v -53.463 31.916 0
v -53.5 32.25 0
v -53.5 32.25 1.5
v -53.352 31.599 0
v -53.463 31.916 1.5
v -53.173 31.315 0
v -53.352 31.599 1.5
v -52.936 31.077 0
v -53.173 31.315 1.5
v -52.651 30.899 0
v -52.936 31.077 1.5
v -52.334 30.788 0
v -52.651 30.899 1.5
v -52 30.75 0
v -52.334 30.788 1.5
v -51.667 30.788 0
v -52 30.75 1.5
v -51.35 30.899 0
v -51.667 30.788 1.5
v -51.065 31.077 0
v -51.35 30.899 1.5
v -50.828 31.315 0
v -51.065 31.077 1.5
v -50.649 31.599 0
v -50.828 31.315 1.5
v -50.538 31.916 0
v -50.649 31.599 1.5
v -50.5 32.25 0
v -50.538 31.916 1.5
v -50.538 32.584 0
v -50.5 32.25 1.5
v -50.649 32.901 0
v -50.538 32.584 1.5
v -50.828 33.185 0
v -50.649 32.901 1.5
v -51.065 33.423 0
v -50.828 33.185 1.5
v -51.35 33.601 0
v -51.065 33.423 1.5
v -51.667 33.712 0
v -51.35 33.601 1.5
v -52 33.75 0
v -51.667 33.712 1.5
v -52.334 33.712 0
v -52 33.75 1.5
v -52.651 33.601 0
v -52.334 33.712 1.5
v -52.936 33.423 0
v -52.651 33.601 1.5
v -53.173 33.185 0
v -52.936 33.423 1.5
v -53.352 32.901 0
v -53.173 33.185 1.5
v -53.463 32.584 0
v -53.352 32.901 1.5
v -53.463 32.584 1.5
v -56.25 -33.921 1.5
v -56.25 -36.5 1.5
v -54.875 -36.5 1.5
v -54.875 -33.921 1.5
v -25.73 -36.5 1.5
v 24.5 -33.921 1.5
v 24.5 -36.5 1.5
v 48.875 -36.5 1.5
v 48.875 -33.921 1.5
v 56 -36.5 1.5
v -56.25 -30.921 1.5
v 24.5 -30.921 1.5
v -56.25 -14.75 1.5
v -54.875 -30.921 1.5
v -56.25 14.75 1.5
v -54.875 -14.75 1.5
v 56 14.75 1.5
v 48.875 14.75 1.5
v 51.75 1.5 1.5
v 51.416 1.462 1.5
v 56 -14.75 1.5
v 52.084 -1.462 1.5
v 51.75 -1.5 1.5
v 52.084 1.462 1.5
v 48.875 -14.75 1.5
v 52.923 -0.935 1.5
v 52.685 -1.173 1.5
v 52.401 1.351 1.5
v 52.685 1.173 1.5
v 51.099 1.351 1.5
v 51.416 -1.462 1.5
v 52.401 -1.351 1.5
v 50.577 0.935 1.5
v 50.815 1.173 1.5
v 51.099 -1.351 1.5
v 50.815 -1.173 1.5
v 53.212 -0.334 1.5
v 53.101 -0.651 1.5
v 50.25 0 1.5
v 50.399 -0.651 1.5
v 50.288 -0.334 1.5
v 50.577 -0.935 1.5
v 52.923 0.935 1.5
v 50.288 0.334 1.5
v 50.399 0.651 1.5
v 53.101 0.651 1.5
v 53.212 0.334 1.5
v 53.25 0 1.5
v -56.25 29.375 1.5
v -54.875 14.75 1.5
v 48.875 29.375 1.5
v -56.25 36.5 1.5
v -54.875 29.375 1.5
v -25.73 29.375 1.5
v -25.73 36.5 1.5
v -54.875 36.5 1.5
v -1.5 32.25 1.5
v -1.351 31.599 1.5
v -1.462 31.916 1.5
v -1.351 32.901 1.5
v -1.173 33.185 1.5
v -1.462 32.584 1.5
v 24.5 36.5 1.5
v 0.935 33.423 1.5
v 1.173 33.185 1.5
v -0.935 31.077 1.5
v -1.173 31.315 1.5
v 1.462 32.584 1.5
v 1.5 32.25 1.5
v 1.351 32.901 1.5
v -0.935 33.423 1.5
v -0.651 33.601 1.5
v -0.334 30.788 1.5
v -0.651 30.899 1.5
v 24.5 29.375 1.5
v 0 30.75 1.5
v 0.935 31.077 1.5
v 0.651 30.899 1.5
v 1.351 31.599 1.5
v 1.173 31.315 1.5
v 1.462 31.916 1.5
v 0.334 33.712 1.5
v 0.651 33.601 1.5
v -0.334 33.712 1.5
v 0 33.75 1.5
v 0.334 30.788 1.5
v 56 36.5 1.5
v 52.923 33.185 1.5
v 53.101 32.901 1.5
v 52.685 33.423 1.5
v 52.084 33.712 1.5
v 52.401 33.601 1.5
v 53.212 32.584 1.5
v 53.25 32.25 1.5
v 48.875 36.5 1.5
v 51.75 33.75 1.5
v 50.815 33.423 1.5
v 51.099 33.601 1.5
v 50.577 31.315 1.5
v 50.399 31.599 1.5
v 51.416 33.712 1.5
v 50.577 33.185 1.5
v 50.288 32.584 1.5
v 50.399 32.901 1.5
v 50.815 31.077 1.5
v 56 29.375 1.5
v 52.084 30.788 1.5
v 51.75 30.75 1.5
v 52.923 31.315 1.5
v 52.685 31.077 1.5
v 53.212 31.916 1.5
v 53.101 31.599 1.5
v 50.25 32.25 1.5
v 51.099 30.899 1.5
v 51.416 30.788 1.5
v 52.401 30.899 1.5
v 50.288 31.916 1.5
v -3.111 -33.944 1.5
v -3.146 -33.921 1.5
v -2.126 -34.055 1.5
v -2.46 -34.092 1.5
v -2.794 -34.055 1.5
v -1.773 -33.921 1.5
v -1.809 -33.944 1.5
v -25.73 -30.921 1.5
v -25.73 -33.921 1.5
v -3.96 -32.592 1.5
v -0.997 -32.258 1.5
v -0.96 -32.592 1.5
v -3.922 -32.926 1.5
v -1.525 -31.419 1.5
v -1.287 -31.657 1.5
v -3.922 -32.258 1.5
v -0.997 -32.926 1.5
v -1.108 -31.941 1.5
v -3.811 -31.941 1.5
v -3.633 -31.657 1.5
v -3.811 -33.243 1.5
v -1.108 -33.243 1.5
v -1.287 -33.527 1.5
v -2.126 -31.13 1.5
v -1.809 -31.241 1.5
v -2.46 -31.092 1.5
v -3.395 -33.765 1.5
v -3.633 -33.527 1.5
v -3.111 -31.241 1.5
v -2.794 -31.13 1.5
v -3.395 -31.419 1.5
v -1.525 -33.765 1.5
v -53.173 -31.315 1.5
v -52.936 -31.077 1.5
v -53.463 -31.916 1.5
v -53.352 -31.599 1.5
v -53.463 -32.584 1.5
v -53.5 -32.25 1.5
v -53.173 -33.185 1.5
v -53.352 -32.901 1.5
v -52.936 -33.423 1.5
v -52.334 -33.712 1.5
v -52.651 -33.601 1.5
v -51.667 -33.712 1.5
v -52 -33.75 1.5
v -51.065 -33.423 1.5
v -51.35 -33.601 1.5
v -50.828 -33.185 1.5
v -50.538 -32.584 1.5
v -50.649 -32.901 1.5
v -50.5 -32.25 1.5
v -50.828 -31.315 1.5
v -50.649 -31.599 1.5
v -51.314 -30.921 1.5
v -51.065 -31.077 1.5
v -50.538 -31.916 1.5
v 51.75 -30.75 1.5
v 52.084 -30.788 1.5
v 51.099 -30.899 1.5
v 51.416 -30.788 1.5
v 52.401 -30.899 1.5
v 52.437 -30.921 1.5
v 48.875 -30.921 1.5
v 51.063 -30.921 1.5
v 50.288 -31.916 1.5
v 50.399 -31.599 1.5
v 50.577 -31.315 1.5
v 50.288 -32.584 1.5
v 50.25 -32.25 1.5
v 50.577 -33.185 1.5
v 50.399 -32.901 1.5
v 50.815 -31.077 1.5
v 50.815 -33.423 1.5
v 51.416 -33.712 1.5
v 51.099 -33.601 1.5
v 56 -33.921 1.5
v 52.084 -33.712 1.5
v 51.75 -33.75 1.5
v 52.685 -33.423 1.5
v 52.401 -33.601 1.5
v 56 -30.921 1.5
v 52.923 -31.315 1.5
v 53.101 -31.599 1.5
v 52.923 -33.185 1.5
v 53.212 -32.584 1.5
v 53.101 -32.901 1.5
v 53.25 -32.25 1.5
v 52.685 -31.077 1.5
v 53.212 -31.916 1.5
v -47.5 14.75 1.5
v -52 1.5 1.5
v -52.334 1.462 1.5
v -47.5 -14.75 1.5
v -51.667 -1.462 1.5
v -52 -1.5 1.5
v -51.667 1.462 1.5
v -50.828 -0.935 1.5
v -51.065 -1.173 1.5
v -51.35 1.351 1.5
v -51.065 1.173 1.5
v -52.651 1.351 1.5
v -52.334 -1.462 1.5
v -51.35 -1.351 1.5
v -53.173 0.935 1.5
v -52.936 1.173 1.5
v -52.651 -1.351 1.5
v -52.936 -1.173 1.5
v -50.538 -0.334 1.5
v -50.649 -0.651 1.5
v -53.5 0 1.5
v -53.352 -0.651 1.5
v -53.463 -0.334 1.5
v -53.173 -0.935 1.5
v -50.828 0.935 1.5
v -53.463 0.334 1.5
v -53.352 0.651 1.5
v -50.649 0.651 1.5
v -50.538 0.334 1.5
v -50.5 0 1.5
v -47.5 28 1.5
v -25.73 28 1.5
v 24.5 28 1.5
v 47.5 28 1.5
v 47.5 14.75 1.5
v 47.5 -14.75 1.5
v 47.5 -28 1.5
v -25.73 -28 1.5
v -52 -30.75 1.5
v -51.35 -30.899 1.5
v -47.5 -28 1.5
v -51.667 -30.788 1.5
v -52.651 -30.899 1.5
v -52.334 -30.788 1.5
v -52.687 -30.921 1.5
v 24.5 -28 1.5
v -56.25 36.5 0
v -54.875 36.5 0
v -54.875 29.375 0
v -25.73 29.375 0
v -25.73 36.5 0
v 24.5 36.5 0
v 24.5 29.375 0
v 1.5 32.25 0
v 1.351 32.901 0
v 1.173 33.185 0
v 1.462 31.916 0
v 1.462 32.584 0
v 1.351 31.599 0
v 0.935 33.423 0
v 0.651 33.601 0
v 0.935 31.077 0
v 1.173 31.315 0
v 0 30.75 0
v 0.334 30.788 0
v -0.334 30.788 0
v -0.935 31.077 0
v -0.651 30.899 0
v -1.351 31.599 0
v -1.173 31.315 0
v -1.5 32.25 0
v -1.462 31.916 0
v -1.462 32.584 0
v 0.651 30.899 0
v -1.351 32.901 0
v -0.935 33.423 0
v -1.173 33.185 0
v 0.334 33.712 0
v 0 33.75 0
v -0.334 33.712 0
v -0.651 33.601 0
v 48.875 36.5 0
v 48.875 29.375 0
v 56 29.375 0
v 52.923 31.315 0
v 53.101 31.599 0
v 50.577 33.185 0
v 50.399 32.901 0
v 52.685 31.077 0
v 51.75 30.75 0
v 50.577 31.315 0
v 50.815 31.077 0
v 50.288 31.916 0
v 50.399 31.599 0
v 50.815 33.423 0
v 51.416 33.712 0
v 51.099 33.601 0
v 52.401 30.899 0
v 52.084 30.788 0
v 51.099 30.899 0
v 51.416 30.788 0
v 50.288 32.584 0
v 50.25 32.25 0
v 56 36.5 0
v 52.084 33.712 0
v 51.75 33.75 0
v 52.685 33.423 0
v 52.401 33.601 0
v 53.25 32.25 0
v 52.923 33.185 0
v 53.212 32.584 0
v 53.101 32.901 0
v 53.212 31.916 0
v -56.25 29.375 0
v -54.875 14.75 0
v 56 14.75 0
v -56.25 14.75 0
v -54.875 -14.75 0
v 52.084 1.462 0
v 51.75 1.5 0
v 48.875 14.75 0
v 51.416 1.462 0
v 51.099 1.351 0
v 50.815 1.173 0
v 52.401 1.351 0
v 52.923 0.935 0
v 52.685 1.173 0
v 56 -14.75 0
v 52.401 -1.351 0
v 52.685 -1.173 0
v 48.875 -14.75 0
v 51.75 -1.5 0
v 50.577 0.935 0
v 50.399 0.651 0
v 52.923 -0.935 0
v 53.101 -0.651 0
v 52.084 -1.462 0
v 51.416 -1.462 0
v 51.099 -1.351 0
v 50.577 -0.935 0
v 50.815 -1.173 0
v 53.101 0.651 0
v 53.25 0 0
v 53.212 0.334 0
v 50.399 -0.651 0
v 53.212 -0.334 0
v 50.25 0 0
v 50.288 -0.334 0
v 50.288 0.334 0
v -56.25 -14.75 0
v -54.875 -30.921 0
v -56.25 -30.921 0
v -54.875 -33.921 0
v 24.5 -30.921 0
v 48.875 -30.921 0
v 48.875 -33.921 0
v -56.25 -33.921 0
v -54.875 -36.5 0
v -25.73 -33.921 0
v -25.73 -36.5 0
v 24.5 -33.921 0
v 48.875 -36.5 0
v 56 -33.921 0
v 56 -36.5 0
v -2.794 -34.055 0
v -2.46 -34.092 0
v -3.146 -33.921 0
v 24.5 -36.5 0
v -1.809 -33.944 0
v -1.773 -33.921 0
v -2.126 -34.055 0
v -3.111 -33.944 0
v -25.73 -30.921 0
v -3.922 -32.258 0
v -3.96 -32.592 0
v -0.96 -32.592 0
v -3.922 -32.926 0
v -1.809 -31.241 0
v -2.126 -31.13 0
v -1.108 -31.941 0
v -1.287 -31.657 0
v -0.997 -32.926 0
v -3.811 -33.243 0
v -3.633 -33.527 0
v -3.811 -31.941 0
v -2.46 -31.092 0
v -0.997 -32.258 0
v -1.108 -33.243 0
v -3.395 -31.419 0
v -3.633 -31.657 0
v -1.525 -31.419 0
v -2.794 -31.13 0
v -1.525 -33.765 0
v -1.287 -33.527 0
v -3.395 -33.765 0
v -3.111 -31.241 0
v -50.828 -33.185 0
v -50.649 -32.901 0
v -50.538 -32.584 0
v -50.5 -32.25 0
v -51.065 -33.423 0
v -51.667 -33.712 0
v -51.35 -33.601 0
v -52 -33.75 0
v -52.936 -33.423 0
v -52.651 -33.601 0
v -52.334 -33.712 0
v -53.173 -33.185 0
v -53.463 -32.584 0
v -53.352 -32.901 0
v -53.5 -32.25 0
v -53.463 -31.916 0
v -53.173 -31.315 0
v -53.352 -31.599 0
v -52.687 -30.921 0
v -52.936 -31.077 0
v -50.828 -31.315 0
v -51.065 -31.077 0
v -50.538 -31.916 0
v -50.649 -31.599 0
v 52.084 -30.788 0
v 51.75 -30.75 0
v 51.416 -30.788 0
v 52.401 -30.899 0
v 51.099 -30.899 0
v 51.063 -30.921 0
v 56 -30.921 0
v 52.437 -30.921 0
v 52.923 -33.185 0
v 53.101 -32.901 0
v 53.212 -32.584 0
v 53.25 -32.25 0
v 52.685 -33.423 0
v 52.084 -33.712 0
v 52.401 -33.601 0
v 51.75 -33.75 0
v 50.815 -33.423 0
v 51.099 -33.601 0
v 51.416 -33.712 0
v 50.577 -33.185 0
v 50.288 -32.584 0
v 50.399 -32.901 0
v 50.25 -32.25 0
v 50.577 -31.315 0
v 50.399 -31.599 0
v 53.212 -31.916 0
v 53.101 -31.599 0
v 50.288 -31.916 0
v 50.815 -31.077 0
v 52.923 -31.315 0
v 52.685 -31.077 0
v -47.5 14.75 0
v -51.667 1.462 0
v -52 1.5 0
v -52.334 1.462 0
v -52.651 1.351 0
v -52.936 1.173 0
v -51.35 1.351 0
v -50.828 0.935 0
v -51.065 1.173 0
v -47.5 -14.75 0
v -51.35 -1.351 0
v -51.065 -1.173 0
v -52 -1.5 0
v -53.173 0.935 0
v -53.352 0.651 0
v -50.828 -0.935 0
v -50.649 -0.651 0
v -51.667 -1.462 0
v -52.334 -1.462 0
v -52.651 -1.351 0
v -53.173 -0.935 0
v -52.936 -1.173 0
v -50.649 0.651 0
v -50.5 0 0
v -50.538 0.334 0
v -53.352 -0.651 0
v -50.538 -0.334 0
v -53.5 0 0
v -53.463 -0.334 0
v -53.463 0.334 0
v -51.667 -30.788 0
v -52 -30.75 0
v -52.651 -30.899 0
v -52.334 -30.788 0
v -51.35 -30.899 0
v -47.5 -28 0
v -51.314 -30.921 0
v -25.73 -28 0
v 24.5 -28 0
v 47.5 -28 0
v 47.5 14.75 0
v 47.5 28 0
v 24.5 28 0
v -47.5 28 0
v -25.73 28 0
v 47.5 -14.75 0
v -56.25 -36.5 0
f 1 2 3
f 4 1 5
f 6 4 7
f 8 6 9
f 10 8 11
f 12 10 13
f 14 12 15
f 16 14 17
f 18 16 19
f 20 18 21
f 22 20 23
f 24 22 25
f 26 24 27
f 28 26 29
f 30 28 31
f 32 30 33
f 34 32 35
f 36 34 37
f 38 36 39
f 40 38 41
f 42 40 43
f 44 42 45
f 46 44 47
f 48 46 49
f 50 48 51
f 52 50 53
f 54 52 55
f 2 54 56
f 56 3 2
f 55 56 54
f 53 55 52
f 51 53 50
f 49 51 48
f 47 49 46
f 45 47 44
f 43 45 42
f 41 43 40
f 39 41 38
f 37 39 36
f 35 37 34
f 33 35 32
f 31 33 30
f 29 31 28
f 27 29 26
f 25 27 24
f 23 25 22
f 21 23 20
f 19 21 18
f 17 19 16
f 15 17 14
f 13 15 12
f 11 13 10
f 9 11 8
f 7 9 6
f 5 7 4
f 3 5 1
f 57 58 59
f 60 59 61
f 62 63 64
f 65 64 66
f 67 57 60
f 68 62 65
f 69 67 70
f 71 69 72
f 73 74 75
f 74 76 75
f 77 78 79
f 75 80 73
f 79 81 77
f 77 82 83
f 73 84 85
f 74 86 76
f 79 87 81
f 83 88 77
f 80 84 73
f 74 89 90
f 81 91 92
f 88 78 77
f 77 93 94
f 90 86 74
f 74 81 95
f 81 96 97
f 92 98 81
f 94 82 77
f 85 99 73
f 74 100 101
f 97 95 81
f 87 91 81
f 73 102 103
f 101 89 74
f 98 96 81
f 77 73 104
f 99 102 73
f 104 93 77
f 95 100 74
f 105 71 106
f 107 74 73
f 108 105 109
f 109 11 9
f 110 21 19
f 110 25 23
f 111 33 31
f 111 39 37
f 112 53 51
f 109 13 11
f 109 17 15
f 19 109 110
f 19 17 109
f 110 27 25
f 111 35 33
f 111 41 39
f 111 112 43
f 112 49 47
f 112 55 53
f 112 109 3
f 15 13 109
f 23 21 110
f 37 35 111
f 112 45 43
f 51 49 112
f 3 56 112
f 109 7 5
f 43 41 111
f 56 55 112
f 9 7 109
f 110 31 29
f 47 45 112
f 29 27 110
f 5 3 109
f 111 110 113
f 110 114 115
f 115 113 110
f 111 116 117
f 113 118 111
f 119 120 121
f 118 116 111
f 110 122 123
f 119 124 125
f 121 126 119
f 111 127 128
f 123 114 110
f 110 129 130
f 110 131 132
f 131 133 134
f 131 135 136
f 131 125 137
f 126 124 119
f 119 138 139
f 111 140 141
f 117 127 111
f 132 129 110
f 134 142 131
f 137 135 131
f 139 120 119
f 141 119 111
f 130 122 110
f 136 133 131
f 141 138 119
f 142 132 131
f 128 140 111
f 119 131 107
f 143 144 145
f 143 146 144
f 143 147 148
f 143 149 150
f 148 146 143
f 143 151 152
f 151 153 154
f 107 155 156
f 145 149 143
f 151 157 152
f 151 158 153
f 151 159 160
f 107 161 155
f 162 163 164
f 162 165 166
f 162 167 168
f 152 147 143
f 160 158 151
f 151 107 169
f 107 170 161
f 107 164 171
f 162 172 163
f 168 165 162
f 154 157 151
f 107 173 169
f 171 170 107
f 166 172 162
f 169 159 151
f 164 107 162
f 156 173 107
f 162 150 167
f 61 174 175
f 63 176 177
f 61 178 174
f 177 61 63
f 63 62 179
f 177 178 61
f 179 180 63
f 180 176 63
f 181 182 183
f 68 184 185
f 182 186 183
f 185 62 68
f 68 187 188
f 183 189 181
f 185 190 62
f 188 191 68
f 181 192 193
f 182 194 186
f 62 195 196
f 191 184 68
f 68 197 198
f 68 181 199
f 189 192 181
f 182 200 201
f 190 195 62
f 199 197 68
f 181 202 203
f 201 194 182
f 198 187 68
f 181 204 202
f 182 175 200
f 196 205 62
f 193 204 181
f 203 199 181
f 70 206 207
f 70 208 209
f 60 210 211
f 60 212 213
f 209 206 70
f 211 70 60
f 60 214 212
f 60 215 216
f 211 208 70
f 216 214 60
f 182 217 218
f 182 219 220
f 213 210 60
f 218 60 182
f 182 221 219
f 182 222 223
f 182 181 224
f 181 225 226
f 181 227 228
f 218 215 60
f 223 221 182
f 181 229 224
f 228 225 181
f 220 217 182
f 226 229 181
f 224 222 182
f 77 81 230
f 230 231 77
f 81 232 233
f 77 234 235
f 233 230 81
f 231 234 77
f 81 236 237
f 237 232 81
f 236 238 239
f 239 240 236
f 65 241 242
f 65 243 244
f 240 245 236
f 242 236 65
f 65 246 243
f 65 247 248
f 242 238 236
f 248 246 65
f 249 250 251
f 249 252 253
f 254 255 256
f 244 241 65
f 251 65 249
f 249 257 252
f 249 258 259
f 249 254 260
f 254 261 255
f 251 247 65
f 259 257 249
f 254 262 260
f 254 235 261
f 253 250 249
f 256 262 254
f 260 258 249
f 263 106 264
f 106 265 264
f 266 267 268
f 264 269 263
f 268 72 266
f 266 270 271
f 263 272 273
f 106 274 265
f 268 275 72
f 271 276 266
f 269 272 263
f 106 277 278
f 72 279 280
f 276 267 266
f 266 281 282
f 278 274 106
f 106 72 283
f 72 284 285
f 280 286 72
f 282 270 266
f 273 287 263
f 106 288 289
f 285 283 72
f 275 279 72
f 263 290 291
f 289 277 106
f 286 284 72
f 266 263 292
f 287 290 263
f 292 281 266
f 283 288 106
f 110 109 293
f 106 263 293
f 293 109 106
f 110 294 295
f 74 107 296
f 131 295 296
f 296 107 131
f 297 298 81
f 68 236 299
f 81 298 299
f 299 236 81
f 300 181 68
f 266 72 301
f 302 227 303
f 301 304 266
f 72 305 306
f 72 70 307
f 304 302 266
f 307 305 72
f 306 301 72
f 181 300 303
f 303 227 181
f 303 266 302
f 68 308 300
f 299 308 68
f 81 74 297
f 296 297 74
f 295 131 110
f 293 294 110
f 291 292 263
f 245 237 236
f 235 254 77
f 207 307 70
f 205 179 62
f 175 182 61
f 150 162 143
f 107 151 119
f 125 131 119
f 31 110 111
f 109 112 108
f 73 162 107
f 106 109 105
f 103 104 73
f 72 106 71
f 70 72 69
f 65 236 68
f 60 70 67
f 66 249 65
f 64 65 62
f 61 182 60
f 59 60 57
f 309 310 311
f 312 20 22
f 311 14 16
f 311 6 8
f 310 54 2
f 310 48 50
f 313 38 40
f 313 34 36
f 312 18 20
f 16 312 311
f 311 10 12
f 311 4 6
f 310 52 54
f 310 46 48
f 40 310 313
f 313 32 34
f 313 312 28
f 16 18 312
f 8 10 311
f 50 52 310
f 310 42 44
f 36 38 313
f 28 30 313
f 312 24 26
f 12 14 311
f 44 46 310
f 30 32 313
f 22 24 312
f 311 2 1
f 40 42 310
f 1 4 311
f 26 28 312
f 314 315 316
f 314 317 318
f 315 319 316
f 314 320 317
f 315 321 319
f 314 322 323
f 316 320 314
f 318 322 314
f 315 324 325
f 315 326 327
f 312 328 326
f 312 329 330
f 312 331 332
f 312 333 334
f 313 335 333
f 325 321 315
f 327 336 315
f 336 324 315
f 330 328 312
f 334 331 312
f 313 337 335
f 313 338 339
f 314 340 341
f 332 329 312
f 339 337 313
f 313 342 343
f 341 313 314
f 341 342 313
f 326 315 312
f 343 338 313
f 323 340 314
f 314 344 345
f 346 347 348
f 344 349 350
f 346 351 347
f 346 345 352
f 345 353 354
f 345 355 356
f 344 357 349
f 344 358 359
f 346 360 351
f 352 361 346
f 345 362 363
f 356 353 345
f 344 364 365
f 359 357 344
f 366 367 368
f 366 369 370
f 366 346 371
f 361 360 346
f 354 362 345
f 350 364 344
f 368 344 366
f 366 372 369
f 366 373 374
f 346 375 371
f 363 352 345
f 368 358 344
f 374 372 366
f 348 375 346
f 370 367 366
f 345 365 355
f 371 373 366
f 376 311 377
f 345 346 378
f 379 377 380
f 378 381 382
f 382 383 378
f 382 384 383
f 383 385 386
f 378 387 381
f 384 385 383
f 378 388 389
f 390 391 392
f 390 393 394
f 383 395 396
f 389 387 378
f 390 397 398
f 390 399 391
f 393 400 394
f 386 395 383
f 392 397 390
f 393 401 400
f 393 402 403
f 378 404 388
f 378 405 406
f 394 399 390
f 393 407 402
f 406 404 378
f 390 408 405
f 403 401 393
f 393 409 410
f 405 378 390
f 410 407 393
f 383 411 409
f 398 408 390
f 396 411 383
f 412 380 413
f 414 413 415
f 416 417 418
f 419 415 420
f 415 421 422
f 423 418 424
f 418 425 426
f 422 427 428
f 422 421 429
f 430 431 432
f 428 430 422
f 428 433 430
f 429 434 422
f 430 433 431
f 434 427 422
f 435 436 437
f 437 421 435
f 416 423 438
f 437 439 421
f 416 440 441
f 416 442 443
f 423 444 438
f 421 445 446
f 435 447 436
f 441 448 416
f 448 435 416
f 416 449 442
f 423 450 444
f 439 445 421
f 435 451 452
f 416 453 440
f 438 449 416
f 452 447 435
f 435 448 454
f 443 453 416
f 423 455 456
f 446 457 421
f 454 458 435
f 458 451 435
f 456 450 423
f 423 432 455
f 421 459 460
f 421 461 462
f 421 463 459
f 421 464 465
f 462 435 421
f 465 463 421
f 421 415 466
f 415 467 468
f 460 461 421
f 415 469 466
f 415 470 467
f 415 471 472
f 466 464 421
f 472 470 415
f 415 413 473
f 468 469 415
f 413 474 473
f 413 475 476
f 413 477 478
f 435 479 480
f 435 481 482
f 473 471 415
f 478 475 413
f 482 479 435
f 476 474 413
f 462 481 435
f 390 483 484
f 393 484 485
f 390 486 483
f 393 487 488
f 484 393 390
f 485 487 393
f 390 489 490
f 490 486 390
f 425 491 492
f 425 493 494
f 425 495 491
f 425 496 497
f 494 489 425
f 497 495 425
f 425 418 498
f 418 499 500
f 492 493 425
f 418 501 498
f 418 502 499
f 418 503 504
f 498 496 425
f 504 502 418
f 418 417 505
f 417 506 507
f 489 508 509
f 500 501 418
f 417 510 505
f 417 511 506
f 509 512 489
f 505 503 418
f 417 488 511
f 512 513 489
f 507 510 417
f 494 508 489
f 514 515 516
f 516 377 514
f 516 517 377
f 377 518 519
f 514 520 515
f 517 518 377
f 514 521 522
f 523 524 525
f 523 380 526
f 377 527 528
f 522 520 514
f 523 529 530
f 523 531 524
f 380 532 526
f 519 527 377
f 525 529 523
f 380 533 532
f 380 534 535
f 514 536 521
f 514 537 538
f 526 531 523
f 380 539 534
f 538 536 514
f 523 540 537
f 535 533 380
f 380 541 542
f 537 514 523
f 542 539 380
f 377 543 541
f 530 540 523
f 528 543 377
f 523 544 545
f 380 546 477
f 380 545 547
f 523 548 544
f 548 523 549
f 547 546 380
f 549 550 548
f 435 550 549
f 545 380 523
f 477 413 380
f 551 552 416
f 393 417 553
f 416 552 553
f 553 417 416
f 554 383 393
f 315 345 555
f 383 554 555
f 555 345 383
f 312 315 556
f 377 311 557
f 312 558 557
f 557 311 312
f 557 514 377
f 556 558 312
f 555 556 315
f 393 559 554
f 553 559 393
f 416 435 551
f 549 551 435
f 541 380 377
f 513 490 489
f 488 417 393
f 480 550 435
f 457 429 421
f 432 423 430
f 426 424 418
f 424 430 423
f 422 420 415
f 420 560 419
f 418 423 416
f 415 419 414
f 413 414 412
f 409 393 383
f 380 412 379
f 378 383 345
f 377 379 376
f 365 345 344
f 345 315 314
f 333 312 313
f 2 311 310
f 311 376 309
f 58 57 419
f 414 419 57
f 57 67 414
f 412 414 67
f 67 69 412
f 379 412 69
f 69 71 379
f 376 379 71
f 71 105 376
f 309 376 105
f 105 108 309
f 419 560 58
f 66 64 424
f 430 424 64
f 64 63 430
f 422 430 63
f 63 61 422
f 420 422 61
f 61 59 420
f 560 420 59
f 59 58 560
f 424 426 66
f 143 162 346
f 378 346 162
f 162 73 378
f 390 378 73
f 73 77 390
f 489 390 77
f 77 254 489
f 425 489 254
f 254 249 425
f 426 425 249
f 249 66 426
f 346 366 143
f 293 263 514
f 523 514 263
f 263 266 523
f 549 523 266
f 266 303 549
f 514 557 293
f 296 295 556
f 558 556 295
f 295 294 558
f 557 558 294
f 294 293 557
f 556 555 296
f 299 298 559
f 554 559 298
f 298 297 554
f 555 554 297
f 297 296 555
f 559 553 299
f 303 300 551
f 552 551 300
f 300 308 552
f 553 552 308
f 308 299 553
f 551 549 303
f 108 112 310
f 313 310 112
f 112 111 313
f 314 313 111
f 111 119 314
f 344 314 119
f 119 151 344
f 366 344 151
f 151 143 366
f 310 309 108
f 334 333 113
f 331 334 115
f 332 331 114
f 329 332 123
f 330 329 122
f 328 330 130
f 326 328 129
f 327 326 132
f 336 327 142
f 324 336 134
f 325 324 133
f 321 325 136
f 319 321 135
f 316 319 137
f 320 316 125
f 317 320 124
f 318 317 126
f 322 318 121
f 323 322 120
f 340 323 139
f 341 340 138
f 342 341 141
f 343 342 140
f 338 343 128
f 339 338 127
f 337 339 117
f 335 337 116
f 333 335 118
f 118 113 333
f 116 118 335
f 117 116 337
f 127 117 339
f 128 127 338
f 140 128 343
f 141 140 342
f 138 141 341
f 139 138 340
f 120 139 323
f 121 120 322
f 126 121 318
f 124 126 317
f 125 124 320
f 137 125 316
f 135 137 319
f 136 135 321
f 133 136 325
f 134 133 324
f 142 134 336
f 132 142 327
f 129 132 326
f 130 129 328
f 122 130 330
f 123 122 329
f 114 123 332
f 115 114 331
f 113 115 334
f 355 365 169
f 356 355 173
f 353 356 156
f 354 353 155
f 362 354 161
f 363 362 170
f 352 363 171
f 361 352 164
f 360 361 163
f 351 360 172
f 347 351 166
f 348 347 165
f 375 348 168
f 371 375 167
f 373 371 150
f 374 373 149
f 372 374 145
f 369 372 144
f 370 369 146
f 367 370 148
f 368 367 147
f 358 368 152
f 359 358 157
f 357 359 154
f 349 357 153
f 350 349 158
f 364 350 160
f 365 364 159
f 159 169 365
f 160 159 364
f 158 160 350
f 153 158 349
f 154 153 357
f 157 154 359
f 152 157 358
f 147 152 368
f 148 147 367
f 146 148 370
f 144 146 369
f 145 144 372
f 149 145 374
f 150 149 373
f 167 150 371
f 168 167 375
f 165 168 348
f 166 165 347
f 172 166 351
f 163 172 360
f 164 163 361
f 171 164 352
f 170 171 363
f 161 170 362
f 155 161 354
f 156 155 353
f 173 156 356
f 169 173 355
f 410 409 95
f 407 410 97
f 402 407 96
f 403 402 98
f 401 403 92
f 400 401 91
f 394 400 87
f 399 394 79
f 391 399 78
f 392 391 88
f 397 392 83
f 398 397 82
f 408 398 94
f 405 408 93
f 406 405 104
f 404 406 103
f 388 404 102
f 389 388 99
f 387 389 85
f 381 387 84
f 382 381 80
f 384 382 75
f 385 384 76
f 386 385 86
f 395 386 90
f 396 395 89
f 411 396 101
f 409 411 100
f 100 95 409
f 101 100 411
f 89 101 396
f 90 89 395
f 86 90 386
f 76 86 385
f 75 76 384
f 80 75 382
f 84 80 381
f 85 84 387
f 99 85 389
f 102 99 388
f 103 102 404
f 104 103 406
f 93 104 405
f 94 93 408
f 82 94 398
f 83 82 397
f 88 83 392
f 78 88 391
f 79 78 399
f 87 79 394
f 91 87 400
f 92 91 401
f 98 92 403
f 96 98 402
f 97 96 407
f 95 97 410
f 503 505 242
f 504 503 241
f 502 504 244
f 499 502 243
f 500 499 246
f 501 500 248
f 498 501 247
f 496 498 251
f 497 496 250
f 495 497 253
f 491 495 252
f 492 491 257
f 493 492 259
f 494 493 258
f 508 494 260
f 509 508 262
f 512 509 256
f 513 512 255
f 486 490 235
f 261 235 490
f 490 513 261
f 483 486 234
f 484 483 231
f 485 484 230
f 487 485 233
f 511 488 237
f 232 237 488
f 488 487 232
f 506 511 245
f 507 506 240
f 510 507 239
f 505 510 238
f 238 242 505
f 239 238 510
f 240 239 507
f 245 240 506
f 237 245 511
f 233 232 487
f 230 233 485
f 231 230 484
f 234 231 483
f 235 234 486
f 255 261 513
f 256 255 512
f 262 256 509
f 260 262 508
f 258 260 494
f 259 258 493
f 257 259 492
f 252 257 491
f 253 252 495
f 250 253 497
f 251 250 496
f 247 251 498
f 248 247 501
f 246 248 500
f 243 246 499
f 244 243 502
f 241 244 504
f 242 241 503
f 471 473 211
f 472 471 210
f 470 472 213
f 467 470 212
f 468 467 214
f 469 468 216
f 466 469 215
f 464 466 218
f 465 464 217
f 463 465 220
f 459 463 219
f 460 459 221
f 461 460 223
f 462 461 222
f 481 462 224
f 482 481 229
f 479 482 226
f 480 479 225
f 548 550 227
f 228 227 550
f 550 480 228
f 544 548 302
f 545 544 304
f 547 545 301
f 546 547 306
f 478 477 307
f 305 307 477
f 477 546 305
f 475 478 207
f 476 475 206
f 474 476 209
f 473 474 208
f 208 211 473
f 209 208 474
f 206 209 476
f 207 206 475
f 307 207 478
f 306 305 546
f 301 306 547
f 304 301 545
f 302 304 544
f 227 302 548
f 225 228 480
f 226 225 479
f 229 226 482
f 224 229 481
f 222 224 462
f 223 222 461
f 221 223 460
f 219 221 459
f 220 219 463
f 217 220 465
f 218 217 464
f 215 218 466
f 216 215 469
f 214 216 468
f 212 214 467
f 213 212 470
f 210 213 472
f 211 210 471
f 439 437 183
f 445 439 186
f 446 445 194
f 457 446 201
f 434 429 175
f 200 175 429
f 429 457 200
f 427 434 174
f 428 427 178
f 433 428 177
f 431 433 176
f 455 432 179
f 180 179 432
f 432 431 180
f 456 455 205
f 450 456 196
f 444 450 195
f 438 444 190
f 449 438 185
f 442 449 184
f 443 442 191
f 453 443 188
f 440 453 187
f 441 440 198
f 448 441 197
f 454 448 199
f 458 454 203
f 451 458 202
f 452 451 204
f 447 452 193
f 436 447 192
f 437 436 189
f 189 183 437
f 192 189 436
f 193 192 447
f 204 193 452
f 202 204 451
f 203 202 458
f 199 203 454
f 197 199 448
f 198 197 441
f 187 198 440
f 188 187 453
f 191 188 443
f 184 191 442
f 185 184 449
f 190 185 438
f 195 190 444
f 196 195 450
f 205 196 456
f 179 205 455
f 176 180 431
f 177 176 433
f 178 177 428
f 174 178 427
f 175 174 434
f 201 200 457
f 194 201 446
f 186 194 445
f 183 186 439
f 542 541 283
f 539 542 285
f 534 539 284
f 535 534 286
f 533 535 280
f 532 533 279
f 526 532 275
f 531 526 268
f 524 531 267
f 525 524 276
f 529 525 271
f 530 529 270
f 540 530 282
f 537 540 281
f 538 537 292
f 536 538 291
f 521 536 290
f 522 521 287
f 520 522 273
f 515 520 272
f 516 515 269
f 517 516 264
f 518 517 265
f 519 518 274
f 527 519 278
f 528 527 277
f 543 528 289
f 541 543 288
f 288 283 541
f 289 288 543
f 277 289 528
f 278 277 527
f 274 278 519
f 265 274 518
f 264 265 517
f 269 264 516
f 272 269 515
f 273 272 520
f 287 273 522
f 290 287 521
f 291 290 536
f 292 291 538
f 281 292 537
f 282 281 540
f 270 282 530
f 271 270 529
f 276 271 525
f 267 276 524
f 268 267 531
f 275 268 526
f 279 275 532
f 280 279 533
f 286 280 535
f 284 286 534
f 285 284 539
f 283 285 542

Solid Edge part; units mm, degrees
sketch "Sketch1" plane through (0, 0, 0) normal (0, 0, 1) x (1, 0, 0)
  line L0 (-47.5, -28) -> (47.5, -28)
  line L1 (47.5, -28) -> (47.5, 28)
  line L2 (47.5, 28) -> (-47.5, 28)
  line L3 (-47.5, 28) -> (-47.5, -28)
  line L4 (-56.2504, -36.5) -> (56, -36.5)
  line L5 (56, -36.5) -> (56, 36.5)
  line L6 (56, 36.5) -> (-56.2504, 36.5)
  line L7 (-56.2504, 36.5) -> (-56.2504, -36.5)
  circle A0 centre (-52.0004, 32.25) radius 1.5
  circle A1 centre (0, 32.25) radius 1.5
  circle A2 centre (51.75, 32.25) radius 1.5
  circle A3 centre (51.75, 0) radius 1.5
  circle A4 centre (51.75, -32.25) radius 1.5
  circle A5 centre (-52.0004, -32.25) radius 1.5
  circle A6 centre (-2.4598, -32.5922) radius 1.5
  circle A7 centre (-52.0004, 0) radius 1.5
  dimension "D1" = 95
  dimension "D2" = 47.5
  dimension "D3" = 56
  dimension "D4" = 28
  dimension "D5" = 4.25
  dimension "D6" = 4.25
  dimension "D7" = 4.25
  dimension "D8" = 4.25
  dimension "D9" = 4.25
  dimension "D10" = 4.25
extrude "ProtrusiónExtruida_15" add sketch "Sketch1" along normal blind 1.5
